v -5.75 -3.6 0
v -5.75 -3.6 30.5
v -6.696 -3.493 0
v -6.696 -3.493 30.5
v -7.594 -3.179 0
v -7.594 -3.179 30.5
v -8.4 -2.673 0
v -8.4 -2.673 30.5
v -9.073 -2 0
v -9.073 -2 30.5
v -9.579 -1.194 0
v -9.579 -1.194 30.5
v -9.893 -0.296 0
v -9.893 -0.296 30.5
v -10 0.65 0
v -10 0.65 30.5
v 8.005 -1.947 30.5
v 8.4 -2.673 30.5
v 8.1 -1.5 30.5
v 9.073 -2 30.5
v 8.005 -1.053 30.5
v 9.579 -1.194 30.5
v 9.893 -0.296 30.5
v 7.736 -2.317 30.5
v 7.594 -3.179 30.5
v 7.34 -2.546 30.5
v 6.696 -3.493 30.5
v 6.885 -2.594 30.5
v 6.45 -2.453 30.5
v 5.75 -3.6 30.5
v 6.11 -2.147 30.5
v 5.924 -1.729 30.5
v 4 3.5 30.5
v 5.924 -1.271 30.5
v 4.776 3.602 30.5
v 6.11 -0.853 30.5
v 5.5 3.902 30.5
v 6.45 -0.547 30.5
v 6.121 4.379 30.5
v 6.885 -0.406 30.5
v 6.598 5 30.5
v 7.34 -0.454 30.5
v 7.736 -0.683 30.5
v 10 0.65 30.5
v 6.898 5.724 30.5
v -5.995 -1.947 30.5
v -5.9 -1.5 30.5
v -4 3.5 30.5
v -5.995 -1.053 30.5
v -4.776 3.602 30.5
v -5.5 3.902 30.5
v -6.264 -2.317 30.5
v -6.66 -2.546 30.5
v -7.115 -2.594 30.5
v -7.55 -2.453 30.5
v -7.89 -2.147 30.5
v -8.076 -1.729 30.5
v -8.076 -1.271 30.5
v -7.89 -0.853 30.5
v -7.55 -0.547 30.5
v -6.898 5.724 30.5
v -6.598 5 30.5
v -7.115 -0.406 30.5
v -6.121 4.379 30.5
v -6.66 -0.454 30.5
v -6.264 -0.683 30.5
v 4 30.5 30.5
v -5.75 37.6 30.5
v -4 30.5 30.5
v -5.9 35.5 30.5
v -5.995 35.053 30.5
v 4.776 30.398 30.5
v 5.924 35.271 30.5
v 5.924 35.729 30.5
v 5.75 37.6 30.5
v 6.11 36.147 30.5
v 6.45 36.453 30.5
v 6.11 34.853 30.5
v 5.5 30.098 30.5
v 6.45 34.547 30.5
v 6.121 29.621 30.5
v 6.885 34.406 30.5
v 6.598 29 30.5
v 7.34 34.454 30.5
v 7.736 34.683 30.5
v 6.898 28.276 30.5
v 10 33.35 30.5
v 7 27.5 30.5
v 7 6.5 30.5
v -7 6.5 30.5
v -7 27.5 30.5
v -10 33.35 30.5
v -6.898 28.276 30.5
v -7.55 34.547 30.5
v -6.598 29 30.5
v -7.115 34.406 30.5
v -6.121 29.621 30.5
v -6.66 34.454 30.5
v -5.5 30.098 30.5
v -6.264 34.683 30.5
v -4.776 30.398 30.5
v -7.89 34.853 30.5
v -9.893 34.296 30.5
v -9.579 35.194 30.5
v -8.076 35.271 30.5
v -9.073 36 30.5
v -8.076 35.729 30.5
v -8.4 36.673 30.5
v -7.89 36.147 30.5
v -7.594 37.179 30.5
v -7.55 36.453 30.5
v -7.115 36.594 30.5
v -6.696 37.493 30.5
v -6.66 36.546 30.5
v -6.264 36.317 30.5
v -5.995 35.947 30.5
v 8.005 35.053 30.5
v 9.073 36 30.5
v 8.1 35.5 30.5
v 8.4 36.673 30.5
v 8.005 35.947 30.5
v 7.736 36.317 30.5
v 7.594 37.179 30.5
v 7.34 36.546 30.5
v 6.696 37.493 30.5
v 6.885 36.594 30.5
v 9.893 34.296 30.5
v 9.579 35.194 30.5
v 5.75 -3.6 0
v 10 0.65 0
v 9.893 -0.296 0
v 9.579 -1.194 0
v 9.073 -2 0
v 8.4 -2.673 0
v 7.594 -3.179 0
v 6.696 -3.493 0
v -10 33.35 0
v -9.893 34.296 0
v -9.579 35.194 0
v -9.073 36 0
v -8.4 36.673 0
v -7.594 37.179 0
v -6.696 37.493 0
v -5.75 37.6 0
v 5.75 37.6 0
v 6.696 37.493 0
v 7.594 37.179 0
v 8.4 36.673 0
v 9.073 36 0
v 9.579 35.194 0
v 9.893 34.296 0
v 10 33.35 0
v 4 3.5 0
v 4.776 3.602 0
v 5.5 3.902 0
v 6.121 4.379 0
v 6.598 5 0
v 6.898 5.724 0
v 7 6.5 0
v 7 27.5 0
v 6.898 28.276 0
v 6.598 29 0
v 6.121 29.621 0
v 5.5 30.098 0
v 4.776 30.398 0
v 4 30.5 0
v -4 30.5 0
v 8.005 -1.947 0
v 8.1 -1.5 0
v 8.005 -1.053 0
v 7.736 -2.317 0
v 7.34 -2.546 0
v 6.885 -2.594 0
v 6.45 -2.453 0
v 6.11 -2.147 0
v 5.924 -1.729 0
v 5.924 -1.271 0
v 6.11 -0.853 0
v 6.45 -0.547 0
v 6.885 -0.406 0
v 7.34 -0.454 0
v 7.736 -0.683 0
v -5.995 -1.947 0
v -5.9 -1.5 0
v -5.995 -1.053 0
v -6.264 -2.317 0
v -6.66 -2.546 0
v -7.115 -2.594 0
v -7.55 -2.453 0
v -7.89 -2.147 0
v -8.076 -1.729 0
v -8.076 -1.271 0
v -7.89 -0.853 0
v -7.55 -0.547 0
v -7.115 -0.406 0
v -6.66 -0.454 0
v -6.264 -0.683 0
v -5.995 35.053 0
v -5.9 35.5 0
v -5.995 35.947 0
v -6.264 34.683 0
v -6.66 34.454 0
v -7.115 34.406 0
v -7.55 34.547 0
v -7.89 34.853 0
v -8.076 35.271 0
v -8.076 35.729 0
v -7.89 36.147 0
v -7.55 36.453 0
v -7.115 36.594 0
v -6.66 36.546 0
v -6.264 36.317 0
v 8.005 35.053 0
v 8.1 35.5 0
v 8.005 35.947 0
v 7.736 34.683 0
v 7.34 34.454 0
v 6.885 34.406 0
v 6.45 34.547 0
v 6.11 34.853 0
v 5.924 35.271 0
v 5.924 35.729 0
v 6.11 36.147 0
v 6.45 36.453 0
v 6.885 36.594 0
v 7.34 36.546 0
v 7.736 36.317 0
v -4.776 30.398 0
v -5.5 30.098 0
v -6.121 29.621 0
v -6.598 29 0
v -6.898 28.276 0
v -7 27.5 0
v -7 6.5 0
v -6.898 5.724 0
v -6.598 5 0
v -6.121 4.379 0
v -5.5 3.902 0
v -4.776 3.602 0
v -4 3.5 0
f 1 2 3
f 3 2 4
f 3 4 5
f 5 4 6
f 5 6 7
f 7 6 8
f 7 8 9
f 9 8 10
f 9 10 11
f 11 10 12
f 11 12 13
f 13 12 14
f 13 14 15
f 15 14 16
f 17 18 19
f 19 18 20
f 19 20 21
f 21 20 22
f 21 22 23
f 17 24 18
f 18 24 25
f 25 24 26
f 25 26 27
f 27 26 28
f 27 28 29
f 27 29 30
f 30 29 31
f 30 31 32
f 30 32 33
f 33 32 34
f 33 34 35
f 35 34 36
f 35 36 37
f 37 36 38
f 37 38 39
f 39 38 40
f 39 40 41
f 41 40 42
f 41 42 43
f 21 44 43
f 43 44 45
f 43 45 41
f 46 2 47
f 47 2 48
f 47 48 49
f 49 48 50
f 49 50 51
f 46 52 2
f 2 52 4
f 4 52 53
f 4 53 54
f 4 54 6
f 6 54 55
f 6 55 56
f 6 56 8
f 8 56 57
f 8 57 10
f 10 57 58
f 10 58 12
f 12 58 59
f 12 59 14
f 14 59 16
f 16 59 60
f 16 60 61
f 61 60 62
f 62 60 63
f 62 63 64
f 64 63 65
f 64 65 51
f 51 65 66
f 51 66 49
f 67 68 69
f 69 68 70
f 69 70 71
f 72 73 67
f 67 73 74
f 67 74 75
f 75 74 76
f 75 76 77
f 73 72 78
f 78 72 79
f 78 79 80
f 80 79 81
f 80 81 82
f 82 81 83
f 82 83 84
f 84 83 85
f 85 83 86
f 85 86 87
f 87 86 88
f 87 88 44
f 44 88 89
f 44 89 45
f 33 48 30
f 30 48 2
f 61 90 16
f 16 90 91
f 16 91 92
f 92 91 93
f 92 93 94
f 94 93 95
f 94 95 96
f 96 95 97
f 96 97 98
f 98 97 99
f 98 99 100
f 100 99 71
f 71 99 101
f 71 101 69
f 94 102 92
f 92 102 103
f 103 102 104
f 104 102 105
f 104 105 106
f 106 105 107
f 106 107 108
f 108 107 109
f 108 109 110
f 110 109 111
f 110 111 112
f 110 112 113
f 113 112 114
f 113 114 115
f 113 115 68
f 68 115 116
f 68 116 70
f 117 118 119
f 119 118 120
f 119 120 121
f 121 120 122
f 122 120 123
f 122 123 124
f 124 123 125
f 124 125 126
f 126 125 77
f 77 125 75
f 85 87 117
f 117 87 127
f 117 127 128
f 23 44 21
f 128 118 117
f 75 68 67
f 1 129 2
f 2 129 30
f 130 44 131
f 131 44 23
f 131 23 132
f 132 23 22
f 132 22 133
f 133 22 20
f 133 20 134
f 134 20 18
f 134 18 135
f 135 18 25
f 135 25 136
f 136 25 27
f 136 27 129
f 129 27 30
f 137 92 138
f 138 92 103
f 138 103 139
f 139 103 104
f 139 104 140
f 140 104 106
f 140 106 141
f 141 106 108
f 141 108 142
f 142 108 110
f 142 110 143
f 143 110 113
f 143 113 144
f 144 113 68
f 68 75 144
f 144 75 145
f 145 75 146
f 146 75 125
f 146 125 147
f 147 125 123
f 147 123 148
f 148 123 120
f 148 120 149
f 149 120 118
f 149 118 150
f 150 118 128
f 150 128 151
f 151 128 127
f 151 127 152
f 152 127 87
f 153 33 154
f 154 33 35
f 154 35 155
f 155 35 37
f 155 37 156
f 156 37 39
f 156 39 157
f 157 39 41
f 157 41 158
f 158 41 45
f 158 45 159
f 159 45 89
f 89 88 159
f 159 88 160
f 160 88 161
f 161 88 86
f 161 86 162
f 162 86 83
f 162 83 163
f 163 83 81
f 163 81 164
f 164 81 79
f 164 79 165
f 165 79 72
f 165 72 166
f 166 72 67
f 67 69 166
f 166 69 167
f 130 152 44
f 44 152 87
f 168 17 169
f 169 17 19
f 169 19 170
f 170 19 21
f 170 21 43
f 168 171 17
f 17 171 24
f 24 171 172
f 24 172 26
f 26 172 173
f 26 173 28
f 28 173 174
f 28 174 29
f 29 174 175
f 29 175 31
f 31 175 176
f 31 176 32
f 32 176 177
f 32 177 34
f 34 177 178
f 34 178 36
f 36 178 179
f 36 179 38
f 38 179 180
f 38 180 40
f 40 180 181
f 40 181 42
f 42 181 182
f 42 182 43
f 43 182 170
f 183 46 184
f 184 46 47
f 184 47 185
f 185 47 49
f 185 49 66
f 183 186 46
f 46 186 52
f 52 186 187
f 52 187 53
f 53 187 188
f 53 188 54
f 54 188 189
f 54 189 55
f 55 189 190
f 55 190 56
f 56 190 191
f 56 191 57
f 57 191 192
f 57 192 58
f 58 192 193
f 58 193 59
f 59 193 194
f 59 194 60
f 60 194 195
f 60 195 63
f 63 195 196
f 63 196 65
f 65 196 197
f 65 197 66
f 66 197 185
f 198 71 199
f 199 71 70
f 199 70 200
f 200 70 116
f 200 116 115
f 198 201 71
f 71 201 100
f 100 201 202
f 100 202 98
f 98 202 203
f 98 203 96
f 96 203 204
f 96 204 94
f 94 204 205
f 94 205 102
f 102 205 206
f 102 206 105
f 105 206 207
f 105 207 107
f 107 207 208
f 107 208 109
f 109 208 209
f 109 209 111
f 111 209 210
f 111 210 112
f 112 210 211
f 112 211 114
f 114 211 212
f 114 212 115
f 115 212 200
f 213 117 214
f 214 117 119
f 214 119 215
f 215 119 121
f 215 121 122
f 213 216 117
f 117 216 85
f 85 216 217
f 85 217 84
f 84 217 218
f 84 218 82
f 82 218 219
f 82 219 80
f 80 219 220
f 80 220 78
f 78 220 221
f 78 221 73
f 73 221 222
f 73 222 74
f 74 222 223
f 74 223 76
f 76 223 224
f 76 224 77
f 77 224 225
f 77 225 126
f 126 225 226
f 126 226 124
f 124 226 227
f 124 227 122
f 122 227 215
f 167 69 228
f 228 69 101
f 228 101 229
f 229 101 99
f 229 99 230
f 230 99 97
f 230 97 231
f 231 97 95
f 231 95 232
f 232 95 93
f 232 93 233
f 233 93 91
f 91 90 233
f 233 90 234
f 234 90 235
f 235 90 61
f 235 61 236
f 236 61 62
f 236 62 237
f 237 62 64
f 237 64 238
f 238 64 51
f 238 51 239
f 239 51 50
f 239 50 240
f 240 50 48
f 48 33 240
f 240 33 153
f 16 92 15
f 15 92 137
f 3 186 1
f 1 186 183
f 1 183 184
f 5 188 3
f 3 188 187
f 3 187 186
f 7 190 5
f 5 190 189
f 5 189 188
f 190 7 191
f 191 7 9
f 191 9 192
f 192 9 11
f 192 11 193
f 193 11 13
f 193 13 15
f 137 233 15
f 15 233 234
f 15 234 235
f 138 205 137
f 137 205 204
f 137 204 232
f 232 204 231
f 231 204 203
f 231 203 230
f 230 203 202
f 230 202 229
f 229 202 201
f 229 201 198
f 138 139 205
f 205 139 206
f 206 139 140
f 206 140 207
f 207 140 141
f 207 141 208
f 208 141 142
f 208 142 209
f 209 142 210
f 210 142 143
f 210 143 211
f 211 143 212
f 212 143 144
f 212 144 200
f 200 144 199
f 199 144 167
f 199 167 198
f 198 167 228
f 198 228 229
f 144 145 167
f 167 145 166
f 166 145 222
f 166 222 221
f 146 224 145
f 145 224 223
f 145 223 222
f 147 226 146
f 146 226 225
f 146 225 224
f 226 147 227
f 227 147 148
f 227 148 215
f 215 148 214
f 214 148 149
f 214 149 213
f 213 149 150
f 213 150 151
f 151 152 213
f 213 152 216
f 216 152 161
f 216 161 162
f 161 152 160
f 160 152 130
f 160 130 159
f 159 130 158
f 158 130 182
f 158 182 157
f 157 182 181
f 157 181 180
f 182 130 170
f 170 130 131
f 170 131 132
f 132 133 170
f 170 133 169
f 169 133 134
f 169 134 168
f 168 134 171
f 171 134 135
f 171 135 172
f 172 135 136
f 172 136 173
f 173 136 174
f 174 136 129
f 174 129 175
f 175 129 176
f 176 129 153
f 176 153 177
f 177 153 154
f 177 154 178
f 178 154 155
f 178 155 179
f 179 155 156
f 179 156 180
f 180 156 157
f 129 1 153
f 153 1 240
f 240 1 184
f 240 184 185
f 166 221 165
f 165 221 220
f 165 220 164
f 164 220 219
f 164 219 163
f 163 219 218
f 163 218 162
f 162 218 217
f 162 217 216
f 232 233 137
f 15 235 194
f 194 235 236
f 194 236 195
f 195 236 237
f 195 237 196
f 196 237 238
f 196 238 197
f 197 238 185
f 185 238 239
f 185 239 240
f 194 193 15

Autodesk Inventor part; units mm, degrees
ref_plane "YZ Plane" through (0, 0, 0) normal (1, 0, 0) x (0, 1, 0)
ref_plane "XZ Plane" through (0, 0, 0) normal (0, 1, 0) x (-1, 0, 0)
sketch "スケッチ1" plane through (0, 0, 0) normal (0, 0, 1) x (1, 0, 0)
  circle A0 centre (7, -1.5) radius 1.1 projected
  circle A1 centre (-7, -1.5) radius 1.1 projected
  arc A2 (-7, 6.5) -> (-4, 3.5) centre (-4, 6.5) ccw projected
  line L0 (4, 3.5) -> (-4, 3.5) projected
  arc A3 (4, 3.5) -> (7, 6.5) centre (4, 6.5) ccw projected
  line L1 (7, 27.5) -> (7, 6.5) projected
  line L2 (-7, 6.5) -> (-7, 27.5) projected
  arc A4 (-4, 30.5) -> (-7, 27.5) centre (-4, 27.5) ccw projected
  line L3 (-4, 30.5) -> (4, 30.5) projected
  circle A5 centre (-7, 35.5) radius 1.1 projected
  circle A6 centre (7, 35.5) radius 1.1 projected
  circle A7 centre (-7, -1.5) radius 1.1 projected
  line L4 (7, 27.5) -> (7, 6.5) projected
  arc A8 (4, 3.5) -> (7, 6.5) centre (4, 6.5) ccw projected
  line L5 (4, 3.5) -> (-4, 3.5) projected
  arc A9 (-7, 6.5) -> (-4, 3.5) centre (-4, 6.5) ccw projected
  line L6 (-7, 6.5) -> (-7, 27.5) projected
  arc A10 (-4, 30.5) -> (-7, 27.5) centre (-4, 27.5) ccw projected
  line L7 (-4, 30.5) -> (4, 30.5) projected
  arc A11 (7, 27.5) -> (4, 30.5) centre (4, 27.5) ccw projected
  circle A12 centre (7, -1.5) radius 1.1 projected
  arc A13 (6, -30) -> (6.4, -31.2) centre (8, -30) ccw projected
  arc A14 (6.4, -40.8) -> (6.4, -31.2) centre (0, -36) ccw projected
  arc A15 (6.4, -40.8) -> (6, -42) centre (8, -42) ccw projected
  line L8 (6, -42) -> (6, -42.5) projected
  arc A16 (6, -42.5) -> (10, -42.5) centre (8, -42.5) ccw projected
  line L9 (10, -42.5) -> (10, 76.5) projected
  arc A17 (10, 76.5) -> (6, 76.5) centre (8, 76.5) ccw projected
  line L10 (6, 76.5) -> (6, 76) projected
  arc A18 (6, 76) -> (6.4, 74.8) centre (8, 76) ccw projected
  arc A19 (6.4, 65.2) -> (6.4, 74.8) centre (0, 70) ccw projected
  arc A20 (6.4, 65.2) -> (6, 64) centre (8, 64) ccw projected
  line L11 (6, 64) -> (6, 60.696) projected
  arc A21 (6, 60.696) -> (6.9906, 58.9694) centre (8, 60.696) ccw projected
  line L12 (6.9906, 58.9694) -> (6.9906, 52.6121) projected
  arc A22 (6.9906, 52.6121) -> (6, 50.8855) centre (8, 50.8855) ccw projected
  line L13 (6, 50.8855) -> (6, 45.5) projected
  arc A23 (3, 42.5) -> (6, 45.5) centre (3, 45.5) ccw projected
  line L14 (3, 42.5) -> (-8, 42.5) projected
  arc A24 (-8, 42.5) -> (-10, 40.5) centre (-8, 40.5) ccw projected
  line L15 (-10, 40.5) -> (-10, -6.5) projected
  arc A25 (-10, -6.5) -> (-8, -8.5) centre (-8, -6.5) ccw projected
  line L16 (-8, -8.5) -> (3, -8.5) projected
  arc A26 (6, -11.5) -> (3, -8.5) centre (3, -11.5) ccw projected
  line L17 (6, -11.5) -> (6, -16.8855) projected
  arc A27 (6, -16.8855) -> (6.9906, -18.6121) centre (8, -16.8855) ccw projected
  line L18 (6.9906, -18.6121) -> (6.9906, -24.9694) projected
  arc A28 (6.9906, -24.9694) -> (6, -26.696) centre (8, -26.696) ccw projected
  line L19 (6, -26.696) -> (6, -30) projected
  circle A29 centre (8, 76.5) radius 1.1 projected
  circle A30 centre (-8, 40.5) radius 1.1 projected
  circle A31 centre (-8, -6.5) radius 1.1 projected
  circle A32 centre (8, -42.5) radius 1.1 projected
  circle A33 centre (8, -6.5) radius 1.1 projected
  circle A34 centre (8, 40.5) radius 1.1 projected
  line L20 (10, 37.6) -> (-10, 37.6)
  line L21 (10, 17) -> (-10, 17) construction
  line L22 (10, -3.6) -> (-10, -3.6)
  point P0 (0, 0)
  point P1 (-10, -3.6)
  point P2 (10, -3.6)
  dimension "d0" = 1
ref_plane "作業平面1" through (-10, -78.5, 30.5) normal (0, 0, -1) x (0, 1, 0)
extrude "押し出し1" add sketch "スケッチ1" along normal up to surface (30.5 mm away) contours L22 L15 L20 L9
fillet "フィレット1" radius 4.25 4 edges at (10, 37.6, 15.25) (-10, 37.6, 15.25) (10, -3.6, 15.25) (-10, -3.6, 15.25)
properties part number "suzikai" material "ABS プラスチック"
